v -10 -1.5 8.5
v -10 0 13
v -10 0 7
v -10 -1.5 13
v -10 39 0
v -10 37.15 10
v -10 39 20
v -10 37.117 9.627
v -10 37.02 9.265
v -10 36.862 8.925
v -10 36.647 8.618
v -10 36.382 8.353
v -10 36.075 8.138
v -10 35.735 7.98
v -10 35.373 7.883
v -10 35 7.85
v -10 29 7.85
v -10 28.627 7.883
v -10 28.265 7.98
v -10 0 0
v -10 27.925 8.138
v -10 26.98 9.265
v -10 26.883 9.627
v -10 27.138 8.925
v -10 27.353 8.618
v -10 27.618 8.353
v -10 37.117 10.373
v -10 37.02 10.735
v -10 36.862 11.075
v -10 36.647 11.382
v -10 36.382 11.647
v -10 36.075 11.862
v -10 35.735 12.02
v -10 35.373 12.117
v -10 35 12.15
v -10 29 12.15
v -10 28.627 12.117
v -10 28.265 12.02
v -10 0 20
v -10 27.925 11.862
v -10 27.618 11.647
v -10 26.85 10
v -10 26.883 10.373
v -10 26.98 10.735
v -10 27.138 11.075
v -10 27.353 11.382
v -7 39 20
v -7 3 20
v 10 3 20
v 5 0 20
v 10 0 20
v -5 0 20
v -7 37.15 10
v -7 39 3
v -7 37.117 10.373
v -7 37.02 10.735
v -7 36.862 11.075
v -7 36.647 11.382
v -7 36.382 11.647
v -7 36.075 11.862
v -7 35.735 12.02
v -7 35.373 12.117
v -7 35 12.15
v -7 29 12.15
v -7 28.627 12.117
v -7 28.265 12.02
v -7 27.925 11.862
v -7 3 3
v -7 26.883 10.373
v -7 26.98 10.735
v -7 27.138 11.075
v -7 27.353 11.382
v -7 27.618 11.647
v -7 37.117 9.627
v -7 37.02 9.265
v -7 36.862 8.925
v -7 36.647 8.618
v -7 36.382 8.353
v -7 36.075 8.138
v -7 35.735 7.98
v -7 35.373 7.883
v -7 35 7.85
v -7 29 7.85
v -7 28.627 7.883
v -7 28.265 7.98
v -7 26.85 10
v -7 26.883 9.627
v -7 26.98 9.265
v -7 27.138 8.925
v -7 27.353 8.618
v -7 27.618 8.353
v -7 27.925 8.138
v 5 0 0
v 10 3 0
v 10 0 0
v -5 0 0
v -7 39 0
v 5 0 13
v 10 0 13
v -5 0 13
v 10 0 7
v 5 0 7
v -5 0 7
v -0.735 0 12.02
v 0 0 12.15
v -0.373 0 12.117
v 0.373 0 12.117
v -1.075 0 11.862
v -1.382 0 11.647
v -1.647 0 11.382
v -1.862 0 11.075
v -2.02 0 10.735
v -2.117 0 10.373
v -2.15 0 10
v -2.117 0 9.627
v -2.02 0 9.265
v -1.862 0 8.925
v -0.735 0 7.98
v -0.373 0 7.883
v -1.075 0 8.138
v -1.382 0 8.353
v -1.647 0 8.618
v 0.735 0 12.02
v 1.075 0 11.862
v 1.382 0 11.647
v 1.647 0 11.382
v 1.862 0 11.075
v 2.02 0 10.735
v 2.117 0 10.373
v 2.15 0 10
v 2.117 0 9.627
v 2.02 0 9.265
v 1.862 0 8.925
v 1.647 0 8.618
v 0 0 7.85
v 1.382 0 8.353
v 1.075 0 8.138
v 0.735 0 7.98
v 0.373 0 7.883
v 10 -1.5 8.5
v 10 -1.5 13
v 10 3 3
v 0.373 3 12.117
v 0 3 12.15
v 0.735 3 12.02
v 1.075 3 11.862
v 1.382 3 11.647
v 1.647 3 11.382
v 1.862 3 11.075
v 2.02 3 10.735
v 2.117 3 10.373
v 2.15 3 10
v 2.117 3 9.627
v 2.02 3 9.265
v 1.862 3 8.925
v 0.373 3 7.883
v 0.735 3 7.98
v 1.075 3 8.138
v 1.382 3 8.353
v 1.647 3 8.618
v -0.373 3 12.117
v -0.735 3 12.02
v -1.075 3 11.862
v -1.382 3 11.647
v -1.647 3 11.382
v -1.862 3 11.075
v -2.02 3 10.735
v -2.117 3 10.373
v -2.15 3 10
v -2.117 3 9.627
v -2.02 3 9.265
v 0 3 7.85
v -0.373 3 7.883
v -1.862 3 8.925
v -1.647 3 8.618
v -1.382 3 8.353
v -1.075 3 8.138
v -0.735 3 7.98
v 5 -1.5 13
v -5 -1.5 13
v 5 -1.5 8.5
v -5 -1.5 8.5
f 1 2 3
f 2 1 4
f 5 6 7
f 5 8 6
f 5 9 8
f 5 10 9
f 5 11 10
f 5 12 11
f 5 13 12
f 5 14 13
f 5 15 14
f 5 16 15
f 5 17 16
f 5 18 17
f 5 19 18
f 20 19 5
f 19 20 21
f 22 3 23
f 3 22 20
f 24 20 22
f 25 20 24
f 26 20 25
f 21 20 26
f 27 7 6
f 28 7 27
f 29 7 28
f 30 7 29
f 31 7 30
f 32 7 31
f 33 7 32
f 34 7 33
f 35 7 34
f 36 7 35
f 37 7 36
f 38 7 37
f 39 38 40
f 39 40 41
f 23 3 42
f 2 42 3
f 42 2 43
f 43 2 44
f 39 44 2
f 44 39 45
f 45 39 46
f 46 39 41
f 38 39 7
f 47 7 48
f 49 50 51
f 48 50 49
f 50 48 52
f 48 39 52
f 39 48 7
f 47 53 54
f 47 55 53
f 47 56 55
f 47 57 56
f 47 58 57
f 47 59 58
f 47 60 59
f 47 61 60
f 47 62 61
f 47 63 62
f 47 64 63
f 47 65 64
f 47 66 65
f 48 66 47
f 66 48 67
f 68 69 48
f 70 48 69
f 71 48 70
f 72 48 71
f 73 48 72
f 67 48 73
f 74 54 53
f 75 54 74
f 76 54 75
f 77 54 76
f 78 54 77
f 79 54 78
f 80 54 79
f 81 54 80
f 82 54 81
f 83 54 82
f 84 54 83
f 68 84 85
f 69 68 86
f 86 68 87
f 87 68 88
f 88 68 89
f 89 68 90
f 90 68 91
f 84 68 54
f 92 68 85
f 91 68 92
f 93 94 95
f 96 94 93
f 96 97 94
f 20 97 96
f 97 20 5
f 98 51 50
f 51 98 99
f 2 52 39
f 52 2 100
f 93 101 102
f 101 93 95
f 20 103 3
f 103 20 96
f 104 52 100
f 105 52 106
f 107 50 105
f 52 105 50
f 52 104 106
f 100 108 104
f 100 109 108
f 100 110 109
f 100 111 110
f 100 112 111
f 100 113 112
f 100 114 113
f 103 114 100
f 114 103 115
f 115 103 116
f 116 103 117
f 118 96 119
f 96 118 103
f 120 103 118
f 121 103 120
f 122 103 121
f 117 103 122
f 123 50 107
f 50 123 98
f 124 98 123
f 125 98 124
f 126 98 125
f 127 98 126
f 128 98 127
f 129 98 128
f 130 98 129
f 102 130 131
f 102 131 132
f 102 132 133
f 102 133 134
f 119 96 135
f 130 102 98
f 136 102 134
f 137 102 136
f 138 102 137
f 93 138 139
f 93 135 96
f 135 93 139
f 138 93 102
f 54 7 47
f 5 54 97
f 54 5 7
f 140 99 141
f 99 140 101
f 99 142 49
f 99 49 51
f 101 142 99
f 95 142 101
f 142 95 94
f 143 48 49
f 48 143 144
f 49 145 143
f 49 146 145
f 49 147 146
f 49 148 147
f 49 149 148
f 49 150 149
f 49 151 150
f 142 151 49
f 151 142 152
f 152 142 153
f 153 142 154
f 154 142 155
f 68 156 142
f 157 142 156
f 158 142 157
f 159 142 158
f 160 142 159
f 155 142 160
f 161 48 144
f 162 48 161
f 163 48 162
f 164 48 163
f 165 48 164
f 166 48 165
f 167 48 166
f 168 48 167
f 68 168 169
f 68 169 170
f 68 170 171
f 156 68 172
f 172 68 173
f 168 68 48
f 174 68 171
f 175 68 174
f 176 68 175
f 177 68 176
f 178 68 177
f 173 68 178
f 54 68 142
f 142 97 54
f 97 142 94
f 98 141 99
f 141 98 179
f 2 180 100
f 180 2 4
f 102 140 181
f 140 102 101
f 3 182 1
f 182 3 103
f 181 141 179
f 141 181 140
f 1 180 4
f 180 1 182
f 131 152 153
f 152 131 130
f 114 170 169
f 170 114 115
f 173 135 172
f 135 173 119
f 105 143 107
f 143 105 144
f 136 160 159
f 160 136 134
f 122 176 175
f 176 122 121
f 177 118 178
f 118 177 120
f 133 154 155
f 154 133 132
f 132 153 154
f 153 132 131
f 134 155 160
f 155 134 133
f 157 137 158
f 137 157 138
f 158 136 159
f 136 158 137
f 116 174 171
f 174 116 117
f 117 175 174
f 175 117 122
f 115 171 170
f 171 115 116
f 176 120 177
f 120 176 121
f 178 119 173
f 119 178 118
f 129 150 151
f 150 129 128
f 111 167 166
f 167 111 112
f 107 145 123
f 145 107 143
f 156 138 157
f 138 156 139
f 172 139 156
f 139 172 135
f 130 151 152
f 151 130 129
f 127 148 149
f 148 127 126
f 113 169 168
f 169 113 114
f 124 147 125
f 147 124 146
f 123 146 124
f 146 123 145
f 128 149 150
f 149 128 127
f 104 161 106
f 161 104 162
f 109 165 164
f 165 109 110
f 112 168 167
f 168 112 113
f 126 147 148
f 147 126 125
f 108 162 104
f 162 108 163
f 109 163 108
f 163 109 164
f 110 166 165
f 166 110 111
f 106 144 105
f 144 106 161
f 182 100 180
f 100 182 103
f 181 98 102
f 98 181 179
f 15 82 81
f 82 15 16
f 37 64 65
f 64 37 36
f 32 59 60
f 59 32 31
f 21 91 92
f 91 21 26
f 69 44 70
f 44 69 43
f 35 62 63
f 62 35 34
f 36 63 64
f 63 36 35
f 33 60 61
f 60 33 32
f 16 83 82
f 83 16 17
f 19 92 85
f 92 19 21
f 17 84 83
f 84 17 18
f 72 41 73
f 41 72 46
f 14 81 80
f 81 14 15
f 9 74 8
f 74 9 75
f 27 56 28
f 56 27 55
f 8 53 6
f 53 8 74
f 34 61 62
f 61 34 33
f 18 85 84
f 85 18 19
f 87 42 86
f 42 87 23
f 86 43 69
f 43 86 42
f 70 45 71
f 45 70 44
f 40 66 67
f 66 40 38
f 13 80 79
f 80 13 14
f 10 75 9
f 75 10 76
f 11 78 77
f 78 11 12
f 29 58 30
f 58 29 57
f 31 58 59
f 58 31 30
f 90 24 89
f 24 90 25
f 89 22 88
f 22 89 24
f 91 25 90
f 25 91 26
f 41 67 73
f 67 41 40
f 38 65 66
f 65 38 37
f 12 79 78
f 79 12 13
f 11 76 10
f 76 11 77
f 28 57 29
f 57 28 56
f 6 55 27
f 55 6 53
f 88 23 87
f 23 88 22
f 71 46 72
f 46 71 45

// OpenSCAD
$fn=36;

rail_height=20; //2020 rail
slot_width=6;
notch_depth=1.5;
rail_screw_diameter=4.3; //M4 + margin

psu_screw_diameter = rail_screw_diameter;
psu_screw_slot_length = 6;
psu_screw_offset = 32;
slot_nut_length=10;

bracket_length=20;
bracket_width=psu_screw_offset+psu_screw_slot_length/2+4;
endplate_thickness=3;
bracket_thickness=3;
e=0.01;



difference() {
    union() {
        
       //Base parts of bracket
       translate([-bracket_length/2,0,0]) {
           cube([bracket_thickness, bracket_width, rail_height]); 
           cube([bracket_length, bracket_thickness, rail_height]);

       }
       
       //Endplate
       translate([-bracket_length/2, 0, 0]) hull() {
           cube([bracket_length, bracket_thickness, bracket_thickness]);
           cube([bracket_thickness, bracket_width, bracket_thickness]);
       }
    
       
       //Notch into rail
       notch_points=[[0,-slot_width/2],[notch_depth,-slot_width/2+notch_depth],[notch_depth,slot_width/2],[0,slot_width/2]];
       notch_path=[[0,1,2,3,0]];
       
       translate([bracket_length/2,0,rail_height/2]) rotate([90,0,-90])  linear_extrude(height=bracket_length) polygon(points=notch_points, paths=notch_path, convexity=2);
       
    }
    
    union() {
        //Holes for mounting bolts to rail
            translate([0, -e, rail_height/2]) rotate([-90,0,0]) cylinder(d=rail_screw_diameter, h=bracket_thickness+2*e);
        
        //Cutout in notch for slot nuts
            translate([-slot_nut_length/2,-notch_depth-e,0]) cube([slot_nut_length,notch_depth+e,rail_height]);
        
        //PSU screw hole
        translate([-bracket_length/2,psu_screw_offset, rail_height/2]) rotate([0,90,0]) hull() {
            translate([0,psu_screw_slot_length/2, -e]) cylinder(d=psu_screw_diameter, h=bracket_thickness+2*e);
            translate([0,-psu_screw_slot_length/2, -e]) cylinder(d=psu_screw_diameter, h=bracket_thickness+2*e);
        }
        
    }
}
